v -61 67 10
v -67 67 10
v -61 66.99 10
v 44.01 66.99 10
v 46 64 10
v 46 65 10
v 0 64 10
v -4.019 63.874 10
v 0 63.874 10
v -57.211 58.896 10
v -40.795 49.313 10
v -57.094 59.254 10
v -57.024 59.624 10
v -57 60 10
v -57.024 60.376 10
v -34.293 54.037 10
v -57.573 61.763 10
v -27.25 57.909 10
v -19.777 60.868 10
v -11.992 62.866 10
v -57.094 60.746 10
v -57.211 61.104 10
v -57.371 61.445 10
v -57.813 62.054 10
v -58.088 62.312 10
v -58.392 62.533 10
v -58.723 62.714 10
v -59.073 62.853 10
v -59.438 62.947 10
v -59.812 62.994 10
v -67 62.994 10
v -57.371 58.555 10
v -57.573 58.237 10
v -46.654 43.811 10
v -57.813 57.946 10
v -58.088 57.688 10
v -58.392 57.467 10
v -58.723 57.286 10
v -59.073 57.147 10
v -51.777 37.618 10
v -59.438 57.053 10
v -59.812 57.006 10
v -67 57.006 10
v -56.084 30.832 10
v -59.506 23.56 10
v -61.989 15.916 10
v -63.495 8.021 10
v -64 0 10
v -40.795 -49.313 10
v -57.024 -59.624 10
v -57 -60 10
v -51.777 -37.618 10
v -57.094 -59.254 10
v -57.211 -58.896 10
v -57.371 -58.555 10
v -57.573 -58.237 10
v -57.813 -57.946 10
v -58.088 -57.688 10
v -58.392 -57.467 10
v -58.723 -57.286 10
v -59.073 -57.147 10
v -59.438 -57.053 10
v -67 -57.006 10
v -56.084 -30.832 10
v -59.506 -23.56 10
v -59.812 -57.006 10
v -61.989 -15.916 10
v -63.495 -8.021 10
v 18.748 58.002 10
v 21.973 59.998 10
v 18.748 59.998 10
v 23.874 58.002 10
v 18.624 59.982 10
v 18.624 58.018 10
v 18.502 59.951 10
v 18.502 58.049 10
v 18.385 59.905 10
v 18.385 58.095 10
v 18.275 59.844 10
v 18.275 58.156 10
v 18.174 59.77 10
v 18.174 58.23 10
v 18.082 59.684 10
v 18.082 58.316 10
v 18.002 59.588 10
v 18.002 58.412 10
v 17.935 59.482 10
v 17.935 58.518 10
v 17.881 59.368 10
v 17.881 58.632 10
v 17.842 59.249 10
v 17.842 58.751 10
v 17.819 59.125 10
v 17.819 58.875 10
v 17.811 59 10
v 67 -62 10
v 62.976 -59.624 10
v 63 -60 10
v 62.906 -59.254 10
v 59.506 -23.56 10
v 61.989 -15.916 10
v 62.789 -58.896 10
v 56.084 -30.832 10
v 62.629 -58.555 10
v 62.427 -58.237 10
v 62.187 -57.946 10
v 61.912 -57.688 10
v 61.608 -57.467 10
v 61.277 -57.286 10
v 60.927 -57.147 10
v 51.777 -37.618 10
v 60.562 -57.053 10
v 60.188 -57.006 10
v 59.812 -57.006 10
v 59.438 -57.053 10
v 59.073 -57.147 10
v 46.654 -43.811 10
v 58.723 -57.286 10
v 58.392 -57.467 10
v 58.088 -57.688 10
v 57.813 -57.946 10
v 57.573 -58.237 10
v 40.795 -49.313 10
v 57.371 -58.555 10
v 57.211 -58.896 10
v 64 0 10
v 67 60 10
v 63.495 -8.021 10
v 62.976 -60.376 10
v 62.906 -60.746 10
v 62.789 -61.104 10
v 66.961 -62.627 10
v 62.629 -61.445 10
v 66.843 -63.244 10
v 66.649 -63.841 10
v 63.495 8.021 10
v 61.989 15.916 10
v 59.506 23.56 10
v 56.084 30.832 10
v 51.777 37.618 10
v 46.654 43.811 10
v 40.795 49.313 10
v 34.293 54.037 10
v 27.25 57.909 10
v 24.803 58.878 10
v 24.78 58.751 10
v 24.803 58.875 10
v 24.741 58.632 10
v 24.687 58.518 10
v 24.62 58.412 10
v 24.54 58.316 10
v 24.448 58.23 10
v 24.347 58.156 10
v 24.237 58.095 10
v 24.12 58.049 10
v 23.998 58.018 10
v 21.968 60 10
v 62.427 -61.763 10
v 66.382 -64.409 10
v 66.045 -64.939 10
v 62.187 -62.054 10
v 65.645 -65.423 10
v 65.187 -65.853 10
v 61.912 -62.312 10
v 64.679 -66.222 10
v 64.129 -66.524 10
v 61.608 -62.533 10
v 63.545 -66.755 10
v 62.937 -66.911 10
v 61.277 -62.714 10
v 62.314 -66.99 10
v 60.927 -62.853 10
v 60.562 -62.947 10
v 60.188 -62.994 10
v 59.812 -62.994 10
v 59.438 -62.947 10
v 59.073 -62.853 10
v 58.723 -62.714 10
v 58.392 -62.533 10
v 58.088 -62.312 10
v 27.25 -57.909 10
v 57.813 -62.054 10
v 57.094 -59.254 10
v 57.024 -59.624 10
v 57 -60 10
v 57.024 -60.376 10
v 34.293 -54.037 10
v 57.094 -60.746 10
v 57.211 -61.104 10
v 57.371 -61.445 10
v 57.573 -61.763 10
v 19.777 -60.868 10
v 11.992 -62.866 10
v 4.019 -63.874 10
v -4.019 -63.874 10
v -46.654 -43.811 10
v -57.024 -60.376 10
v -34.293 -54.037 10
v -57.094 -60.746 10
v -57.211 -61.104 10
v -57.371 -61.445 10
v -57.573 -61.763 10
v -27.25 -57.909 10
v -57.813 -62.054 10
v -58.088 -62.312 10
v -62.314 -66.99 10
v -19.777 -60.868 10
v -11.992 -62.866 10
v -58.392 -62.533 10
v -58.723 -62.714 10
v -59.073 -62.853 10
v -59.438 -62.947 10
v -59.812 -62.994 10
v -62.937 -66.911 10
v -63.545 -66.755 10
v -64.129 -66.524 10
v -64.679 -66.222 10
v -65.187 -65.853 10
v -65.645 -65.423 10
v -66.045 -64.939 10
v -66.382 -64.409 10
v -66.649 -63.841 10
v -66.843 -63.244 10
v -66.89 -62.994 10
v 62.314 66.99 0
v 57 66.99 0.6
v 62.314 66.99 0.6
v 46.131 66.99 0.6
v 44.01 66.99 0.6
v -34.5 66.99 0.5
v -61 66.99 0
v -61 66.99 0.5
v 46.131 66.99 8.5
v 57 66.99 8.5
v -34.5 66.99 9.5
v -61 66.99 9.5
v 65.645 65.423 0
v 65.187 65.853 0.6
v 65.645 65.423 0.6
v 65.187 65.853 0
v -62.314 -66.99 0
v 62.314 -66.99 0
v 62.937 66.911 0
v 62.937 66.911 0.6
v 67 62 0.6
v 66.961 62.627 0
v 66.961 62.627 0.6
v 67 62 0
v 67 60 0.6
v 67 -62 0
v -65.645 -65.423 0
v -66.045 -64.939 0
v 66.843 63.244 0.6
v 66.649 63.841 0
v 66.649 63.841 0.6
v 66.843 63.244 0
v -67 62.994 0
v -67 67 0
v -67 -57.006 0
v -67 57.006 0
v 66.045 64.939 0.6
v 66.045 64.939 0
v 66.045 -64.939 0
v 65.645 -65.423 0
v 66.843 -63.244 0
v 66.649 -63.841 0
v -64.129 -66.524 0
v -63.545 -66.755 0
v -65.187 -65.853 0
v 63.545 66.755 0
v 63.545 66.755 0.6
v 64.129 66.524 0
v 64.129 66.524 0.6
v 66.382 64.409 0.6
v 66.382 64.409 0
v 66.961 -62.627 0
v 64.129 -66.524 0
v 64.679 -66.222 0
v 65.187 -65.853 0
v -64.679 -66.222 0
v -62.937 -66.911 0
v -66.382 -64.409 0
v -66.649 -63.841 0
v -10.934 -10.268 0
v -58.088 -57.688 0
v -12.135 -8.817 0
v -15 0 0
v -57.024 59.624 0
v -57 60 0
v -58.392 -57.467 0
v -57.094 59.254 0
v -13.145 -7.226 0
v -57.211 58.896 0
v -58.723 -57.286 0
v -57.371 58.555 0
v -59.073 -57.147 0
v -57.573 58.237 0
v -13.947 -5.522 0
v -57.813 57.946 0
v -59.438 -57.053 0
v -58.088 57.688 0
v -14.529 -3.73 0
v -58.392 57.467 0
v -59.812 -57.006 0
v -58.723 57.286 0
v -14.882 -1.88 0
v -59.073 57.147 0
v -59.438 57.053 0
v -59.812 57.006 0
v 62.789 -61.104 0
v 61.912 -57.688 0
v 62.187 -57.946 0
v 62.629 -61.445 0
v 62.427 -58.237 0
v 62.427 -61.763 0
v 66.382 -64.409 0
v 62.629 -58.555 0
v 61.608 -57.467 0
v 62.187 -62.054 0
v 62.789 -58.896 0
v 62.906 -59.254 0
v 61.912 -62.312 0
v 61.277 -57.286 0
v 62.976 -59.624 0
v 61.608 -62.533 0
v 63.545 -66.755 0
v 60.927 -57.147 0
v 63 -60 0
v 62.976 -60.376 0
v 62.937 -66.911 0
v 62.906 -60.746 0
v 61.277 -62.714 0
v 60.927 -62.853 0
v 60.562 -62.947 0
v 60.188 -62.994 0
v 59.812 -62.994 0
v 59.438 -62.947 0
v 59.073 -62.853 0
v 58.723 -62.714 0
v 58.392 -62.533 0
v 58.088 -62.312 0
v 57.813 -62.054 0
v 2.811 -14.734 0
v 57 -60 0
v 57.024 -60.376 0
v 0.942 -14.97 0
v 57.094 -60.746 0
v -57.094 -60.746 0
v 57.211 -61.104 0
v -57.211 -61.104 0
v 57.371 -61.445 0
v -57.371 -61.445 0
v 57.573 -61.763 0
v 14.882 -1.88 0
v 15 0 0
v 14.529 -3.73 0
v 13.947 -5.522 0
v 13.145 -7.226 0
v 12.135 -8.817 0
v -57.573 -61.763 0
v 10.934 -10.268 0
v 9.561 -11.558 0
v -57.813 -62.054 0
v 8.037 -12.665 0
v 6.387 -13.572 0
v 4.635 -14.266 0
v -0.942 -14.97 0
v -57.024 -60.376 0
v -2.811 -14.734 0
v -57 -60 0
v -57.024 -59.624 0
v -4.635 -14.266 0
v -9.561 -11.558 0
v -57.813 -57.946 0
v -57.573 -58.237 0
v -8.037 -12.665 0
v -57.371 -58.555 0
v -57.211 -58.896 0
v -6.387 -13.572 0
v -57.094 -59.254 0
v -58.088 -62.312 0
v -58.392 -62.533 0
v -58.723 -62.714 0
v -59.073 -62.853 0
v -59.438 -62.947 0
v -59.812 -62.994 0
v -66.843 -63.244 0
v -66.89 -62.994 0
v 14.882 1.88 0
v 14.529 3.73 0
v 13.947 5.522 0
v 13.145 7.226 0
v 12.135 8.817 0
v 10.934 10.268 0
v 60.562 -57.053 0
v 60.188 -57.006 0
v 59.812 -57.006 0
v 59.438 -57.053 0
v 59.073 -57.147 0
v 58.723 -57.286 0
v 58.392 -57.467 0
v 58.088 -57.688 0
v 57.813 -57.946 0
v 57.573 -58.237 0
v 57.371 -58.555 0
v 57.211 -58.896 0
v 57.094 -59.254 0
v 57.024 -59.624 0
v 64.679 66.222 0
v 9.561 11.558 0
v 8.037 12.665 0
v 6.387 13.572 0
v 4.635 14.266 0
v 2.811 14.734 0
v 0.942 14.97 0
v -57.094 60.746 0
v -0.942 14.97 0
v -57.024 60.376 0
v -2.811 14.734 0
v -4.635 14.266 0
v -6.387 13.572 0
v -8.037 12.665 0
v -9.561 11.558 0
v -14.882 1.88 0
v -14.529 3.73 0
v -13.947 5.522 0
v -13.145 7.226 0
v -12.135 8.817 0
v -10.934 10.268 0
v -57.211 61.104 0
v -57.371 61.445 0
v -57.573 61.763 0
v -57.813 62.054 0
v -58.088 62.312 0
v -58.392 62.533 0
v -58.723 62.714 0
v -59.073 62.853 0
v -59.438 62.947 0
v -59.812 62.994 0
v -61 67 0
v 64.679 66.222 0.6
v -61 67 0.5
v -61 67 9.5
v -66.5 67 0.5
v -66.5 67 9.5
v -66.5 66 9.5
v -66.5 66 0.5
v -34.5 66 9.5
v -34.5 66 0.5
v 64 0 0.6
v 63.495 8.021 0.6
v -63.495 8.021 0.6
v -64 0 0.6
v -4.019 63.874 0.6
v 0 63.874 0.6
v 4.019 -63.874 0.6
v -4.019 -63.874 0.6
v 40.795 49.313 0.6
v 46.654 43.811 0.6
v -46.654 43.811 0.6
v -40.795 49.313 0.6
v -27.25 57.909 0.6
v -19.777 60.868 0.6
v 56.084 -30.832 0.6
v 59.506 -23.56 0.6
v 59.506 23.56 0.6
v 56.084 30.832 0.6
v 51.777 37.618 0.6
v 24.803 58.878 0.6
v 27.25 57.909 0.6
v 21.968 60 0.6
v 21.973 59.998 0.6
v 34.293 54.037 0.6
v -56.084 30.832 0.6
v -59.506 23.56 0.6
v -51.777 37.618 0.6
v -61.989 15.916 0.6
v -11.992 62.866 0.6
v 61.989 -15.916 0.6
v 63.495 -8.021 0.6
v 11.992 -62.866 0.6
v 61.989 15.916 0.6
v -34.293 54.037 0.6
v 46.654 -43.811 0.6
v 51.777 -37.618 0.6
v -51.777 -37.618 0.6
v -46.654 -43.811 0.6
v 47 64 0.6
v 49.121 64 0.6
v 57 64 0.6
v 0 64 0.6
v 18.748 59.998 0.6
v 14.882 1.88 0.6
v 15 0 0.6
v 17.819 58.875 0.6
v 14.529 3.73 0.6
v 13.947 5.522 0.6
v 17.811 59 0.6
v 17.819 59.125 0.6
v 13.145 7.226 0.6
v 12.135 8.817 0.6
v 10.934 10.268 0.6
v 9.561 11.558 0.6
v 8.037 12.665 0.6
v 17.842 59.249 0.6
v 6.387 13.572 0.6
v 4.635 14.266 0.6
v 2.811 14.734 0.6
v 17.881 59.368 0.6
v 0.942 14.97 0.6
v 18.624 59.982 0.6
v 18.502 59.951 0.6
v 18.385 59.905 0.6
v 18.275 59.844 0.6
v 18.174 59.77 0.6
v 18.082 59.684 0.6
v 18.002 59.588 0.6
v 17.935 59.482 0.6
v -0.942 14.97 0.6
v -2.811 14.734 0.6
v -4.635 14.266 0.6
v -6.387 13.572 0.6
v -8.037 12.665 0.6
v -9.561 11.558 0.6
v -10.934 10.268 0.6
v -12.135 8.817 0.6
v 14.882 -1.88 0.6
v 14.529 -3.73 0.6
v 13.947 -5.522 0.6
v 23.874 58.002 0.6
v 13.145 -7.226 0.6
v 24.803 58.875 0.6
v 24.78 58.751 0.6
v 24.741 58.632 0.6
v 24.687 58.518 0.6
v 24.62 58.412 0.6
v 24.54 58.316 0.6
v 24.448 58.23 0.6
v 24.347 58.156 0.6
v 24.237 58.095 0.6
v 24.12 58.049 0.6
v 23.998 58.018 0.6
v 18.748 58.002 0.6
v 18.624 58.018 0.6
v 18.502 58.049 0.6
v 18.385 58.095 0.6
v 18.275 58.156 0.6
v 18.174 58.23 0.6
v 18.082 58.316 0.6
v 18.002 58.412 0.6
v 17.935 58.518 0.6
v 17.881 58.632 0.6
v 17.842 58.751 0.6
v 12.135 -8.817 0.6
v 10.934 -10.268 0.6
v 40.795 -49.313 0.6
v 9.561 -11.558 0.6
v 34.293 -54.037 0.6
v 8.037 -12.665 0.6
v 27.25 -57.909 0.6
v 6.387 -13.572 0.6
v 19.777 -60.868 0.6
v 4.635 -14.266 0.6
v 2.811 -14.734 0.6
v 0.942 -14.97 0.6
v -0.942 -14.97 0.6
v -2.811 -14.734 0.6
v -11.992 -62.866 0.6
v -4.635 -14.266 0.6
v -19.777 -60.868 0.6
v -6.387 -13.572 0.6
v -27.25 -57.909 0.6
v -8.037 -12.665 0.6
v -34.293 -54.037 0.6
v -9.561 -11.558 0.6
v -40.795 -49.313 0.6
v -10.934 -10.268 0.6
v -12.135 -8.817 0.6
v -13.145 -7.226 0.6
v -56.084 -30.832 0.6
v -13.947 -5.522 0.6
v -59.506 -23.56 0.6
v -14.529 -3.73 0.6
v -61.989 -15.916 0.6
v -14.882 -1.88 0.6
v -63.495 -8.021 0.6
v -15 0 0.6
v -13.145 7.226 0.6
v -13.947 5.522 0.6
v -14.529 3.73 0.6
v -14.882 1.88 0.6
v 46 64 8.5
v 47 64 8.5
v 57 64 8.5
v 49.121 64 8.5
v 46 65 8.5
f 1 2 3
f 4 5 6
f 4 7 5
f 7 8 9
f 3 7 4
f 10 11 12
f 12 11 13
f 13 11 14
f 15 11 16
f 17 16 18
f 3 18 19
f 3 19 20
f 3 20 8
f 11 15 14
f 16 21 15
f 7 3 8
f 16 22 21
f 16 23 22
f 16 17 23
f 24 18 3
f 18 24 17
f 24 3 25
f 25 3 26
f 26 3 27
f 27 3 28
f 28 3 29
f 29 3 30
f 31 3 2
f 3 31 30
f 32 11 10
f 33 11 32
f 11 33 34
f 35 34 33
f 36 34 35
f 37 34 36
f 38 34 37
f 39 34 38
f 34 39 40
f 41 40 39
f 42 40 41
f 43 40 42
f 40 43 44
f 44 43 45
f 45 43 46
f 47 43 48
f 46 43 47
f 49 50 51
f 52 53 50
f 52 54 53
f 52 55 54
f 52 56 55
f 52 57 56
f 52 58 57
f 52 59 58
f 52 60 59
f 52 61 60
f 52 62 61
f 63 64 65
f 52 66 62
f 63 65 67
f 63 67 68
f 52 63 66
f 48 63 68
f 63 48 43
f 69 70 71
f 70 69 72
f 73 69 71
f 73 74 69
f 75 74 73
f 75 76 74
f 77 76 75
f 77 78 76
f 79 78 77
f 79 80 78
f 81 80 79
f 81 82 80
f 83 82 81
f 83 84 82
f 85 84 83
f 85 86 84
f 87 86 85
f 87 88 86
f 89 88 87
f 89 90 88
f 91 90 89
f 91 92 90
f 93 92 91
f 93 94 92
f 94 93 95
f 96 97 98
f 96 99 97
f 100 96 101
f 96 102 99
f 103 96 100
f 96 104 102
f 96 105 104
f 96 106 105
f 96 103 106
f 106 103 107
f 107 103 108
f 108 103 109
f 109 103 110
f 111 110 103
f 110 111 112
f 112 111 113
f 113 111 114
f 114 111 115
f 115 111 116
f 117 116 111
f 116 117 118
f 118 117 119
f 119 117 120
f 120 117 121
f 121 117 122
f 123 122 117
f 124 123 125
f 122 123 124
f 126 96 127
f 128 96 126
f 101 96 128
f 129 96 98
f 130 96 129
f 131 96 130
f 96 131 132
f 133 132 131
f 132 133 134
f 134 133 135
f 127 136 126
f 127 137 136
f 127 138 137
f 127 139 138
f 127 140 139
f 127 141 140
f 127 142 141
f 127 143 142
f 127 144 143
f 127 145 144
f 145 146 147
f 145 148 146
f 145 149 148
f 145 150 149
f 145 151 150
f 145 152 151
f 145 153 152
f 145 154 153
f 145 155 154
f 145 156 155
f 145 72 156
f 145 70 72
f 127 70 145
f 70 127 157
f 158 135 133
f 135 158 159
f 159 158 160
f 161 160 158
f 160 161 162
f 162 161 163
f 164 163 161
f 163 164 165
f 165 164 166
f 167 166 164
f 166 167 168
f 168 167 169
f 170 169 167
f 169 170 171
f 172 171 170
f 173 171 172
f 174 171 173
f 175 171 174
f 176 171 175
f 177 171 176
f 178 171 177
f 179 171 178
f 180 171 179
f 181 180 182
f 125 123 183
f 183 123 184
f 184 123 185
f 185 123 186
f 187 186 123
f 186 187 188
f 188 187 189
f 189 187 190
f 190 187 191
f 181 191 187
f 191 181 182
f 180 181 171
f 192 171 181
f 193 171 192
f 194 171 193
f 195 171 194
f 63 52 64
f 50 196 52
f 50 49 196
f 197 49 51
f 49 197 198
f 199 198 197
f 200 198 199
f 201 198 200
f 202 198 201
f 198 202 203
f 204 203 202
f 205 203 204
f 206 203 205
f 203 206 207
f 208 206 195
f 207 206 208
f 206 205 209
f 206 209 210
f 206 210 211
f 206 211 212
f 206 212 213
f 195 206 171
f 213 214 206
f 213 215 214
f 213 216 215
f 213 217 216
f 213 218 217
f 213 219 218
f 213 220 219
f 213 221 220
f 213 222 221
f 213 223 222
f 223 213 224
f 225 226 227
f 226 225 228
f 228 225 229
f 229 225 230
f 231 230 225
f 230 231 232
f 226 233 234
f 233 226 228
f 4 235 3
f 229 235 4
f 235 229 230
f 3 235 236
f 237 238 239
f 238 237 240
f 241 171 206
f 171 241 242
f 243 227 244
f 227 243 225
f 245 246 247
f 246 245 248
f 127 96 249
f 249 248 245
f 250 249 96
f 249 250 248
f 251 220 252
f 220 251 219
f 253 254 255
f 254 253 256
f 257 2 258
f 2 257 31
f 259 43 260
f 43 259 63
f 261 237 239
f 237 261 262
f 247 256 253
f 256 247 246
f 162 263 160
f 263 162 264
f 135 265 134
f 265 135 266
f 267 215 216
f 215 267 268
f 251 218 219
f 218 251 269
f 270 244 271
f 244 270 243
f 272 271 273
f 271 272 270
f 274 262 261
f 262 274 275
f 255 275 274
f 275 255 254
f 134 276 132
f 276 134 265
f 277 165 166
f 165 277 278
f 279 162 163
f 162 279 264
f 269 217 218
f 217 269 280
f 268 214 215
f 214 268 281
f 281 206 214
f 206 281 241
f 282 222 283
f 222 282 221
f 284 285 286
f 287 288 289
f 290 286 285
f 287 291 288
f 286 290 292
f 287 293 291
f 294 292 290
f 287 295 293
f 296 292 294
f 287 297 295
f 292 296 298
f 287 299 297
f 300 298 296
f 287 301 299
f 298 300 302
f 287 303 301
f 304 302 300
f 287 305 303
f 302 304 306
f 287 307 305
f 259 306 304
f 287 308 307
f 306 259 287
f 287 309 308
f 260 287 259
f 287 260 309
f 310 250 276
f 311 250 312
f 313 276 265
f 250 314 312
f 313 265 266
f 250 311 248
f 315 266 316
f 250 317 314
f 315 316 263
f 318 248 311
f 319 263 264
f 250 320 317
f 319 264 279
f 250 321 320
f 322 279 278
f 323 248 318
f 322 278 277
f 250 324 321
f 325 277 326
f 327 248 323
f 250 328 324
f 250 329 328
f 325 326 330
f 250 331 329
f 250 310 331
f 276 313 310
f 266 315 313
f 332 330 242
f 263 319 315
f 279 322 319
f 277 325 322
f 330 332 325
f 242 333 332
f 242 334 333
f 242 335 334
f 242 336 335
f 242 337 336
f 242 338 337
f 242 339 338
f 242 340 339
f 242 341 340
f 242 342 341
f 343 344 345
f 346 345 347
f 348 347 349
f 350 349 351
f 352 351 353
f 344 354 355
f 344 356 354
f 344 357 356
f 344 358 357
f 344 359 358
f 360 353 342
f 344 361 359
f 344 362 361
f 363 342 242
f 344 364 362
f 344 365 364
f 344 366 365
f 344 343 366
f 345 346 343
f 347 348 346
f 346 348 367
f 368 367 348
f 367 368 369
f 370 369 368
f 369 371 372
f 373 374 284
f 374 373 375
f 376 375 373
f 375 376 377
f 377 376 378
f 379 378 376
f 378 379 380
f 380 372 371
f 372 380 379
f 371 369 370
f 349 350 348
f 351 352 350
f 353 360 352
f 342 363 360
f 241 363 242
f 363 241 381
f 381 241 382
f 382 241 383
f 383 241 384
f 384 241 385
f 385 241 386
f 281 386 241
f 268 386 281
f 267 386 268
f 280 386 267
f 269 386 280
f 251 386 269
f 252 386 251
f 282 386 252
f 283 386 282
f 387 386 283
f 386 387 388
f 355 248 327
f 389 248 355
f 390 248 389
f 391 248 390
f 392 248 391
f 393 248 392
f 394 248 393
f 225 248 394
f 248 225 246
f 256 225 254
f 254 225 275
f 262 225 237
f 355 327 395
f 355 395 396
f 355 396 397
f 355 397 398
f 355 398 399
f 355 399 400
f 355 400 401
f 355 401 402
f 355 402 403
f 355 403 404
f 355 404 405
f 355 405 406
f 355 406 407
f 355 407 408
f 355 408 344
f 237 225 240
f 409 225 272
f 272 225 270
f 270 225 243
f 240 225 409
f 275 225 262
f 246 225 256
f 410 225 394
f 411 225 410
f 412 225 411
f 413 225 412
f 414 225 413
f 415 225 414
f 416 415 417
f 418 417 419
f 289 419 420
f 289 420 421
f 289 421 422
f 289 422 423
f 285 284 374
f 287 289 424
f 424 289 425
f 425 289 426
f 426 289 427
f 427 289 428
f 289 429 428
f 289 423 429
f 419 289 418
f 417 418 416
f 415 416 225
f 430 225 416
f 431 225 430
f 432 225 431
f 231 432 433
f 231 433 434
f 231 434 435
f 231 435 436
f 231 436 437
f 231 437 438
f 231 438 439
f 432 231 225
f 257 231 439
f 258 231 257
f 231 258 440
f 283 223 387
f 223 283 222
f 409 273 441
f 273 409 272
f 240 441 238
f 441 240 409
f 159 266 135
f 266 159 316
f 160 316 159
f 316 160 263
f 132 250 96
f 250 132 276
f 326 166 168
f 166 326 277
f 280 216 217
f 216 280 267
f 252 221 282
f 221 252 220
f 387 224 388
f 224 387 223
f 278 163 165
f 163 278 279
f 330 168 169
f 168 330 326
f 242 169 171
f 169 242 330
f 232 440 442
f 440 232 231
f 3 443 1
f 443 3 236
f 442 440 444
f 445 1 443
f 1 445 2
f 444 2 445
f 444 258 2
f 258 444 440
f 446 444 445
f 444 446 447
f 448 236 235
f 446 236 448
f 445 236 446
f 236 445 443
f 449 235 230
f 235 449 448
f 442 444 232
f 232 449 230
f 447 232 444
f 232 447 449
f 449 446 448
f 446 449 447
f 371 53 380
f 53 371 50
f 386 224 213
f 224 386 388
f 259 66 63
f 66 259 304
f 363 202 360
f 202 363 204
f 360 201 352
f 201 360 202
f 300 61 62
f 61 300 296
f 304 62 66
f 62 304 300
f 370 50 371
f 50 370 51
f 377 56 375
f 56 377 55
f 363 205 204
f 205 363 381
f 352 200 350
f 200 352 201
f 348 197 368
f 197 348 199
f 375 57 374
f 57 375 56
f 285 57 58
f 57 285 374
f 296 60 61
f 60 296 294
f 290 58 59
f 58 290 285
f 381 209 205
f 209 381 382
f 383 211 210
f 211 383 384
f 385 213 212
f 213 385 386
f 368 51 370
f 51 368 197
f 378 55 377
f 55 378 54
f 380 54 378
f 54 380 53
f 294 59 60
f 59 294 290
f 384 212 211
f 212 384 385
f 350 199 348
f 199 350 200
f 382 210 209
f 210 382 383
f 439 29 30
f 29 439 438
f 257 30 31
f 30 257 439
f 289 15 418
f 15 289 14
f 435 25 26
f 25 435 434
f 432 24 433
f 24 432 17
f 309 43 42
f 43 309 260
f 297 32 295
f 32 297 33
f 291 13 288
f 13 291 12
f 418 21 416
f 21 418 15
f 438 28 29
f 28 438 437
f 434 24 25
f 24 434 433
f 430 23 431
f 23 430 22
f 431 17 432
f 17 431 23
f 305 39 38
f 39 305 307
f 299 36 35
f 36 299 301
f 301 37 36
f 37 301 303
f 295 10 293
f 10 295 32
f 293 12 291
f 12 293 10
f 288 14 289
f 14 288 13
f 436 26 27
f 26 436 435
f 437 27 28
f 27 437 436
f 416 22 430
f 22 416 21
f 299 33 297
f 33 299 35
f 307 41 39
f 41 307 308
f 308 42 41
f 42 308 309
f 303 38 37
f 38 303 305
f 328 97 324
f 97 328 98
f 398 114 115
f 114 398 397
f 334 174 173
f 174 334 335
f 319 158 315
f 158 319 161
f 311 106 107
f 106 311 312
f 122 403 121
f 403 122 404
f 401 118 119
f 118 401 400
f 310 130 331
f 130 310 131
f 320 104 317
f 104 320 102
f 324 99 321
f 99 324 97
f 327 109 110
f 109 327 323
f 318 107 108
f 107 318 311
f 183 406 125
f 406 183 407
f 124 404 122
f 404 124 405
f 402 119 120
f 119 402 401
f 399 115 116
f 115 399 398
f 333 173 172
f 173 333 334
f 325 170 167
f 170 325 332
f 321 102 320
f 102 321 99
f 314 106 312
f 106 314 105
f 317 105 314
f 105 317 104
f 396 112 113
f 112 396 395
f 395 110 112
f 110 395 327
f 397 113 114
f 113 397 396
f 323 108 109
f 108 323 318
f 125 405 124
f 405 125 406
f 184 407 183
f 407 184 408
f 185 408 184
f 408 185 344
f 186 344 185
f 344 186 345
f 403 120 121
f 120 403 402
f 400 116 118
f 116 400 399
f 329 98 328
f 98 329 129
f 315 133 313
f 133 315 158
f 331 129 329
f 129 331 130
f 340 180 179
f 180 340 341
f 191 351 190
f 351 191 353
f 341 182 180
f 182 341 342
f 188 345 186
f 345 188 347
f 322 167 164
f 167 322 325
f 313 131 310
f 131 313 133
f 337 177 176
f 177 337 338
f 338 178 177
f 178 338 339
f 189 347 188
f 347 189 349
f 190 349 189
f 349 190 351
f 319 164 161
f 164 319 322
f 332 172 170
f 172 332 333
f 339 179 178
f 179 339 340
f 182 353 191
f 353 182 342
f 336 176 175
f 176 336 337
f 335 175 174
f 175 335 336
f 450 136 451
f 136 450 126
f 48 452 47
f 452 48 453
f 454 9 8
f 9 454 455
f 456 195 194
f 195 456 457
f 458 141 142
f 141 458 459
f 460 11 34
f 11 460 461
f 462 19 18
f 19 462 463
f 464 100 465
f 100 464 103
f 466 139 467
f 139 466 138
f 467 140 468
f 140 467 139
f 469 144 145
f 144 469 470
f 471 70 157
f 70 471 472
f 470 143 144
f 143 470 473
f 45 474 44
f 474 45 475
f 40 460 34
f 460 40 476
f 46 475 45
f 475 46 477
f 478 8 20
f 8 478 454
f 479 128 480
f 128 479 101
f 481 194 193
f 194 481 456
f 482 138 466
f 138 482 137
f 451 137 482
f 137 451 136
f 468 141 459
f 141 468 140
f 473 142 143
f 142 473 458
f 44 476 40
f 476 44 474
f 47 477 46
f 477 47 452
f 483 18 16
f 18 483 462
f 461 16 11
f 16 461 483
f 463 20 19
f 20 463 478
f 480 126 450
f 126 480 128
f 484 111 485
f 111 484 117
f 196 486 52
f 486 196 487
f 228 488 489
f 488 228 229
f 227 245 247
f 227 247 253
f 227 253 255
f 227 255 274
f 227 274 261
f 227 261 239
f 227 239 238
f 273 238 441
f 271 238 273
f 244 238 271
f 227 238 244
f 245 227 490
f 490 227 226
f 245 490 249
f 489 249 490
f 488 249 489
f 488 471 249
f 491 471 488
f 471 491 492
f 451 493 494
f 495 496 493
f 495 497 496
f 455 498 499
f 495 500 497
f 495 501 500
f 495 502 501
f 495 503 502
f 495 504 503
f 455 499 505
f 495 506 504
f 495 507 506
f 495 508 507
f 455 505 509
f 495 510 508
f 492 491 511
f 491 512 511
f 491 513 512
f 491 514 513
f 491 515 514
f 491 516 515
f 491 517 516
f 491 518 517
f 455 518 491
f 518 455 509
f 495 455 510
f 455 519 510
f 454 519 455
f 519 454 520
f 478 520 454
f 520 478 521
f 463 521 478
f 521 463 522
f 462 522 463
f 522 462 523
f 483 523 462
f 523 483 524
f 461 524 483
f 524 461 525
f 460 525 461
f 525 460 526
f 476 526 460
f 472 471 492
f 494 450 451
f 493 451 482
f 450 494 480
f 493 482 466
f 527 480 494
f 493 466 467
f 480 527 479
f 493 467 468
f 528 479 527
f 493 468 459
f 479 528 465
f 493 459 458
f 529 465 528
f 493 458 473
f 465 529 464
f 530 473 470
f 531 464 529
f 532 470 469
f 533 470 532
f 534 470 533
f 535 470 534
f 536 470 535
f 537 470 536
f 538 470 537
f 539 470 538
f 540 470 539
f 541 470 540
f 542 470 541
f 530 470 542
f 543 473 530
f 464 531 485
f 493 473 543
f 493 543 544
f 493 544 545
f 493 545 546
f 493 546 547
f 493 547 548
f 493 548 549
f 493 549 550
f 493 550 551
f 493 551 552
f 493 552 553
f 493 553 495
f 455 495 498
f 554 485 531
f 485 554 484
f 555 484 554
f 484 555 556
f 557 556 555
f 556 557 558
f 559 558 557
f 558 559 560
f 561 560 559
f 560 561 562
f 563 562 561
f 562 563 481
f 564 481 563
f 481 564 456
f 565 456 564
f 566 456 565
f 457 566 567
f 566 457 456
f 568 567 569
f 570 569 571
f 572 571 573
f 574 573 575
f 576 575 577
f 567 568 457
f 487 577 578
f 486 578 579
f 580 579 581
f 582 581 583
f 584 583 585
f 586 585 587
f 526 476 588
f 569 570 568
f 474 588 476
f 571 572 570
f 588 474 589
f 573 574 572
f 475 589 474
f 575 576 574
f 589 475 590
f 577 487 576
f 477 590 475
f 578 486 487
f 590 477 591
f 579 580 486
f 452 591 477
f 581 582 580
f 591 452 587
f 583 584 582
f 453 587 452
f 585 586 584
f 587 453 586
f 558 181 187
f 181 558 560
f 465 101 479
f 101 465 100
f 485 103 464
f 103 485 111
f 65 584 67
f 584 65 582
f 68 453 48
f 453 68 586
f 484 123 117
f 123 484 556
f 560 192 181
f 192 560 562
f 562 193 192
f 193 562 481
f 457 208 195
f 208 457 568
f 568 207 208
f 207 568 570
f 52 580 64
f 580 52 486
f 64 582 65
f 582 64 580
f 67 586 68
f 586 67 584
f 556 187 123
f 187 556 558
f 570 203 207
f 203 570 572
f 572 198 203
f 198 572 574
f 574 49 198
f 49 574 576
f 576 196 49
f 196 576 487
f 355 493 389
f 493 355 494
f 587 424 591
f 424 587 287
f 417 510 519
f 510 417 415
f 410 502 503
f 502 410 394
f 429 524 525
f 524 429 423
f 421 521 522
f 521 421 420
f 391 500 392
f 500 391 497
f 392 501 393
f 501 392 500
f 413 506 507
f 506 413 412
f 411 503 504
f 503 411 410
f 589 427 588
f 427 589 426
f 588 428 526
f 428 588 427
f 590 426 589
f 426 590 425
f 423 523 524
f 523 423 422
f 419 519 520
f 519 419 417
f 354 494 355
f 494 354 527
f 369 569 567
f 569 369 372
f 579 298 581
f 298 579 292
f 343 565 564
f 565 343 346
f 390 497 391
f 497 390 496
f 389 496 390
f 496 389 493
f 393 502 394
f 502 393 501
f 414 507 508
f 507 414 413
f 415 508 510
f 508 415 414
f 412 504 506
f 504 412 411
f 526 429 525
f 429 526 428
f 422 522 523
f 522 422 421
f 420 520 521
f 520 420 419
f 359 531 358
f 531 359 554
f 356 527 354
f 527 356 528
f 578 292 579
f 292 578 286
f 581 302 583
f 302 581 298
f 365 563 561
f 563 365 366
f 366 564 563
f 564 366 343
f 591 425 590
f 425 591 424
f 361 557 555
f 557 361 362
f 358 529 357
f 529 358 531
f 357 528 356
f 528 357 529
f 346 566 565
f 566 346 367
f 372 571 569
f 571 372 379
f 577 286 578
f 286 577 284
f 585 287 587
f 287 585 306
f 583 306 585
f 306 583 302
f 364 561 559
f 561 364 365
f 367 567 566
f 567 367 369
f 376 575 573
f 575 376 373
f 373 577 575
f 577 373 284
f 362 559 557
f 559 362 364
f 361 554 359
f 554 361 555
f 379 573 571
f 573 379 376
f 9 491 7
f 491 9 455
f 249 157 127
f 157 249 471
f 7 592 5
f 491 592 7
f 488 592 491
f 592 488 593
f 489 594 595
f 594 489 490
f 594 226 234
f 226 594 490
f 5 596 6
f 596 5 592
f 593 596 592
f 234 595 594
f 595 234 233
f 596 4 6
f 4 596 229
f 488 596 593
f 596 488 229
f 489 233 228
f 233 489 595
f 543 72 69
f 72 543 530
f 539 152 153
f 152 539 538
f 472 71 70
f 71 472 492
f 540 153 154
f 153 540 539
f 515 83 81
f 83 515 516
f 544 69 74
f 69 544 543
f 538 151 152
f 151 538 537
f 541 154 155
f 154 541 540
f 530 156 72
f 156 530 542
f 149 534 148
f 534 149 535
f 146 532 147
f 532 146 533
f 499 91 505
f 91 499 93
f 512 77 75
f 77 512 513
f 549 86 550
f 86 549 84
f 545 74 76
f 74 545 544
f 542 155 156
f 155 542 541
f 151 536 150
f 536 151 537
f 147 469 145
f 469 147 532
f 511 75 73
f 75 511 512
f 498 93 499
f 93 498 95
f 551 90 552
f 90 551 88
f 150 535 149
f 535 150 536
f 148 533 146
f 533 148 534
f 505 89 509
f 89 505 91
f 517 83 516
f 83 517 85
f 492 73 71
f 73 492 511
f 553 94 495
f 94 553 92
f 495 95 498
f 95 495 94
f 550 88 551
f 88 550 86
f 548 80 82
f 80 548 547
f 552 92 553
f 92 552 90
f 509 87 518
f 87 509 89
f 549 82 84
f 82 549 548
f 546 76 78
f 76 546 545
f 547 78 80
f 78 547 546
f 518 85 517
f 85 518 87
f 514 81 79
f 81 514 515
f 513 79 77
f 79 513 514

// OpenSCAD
$fn = 50;


union() {
	difference() {
		union() {
			translate(v = [0, 0, 0]) {
				rotate(a = [0, 0, 0]) {
					hull() {
						translate(v = [-62.0000000000, 62.0000000000, 0]) {
							rotate(a = [0, 0, 0]) {
								translate(v = [0, 0, 0]) {
									rotate(a = [0, 0, 0]) {
										cylinder(h = 10, r = 5);
									}
								}
							}
						}
						translate(v = [62.0000000000, 62.0000000000, 0]) {
							rotate(a = [0, 0, 0]) {
								translate(v = [0, 0, 0]) {
									rotate(a = [0, 0, 0]) {
										cylinder(h = 10, r = 5);
									}
								}
							}
						}
						translate(v = [-62.0000000000, -62.0000000000, 0]) {
							rotate(a = [0, 0, 0]) {
								translate(v = [0, 0, 0]) {
									rotate(a = [0, 0, 0]) {
										cylinder(h = 10, r = 5);
									}
								}
							}
						}
						translate(v = [62.0000000000, -62.0000000000, 0]) {
							rotate(a = [0, 0, 0]) {
								translate(v = [0, 0, 0]) {
									rotate(a = [0, 0, 0]) {
										cylinder(h = 10, r = 5);
									}
								}
							}
						}
					}
				}
			}
			translate(v = [-67.0000000000, 61.0000000000, 0]) {
				rotate(a = [0, 0, 0]) {
					cube(size = [6, 6, 10]);
				}
			}
		}
		union() {
			#translate(v = [-66.5000000000, 66.0000000000, 0.5000000000]) {
				rotate(a = [0, 0, 0]) {
					cube(size = [32, 1, 9.0000000000]);
				}
			}
			translate(v = [-67.5000000000, -60.0000000000, -125]) {
				rotate(a = [0, 0, 0]) {
					hull() {
						translate(v = [7.5000000000, 0, 0]) {
							rotate(a = [0, 0, 0]) {
								translate(v = [0, 0, 0]) {
									rotate(a = [0, 0, 0]) {
										cylinder(h = 250, r = 3.0000000000);
									}
								}
							}
						}
						translate(v = [-7.5000000000, 0, 0]) {
							rotate(a = [0, 0, 0]) {
								translate(v = [0, 0, 0]) {
									rotate(a = [0, 0, 0]) {
										cylinder(h = 250, r = 3.0000000000);
									}
								}
							}
						}
					}
				}
			}
			translate(v = [-67.5000000000, 60.0000000000, -125]) {
				rotate(a = [0, 0, 0]) {
					hull() {
						translate(v = [7.5000000000, 0, 0]) {
							rotate(a = [0, 0, 0]) {
								translate(v = [0, 0, 0]) {
									rotate(a = [0, 0, 0]) {
										cylinder(h = 250, r = 3.0000000000);
									}
								}
							}
						}
						translate(v = [-7.5000000000, 0, 0]) {
							rotate(a = [0, 0, 0]) {
								translate(v = [0, 0, 0]) {
									rotate(a = [0, 0, 0]) {
										cylinder(h = 250, r = 3.0000000000);
									}
								}
							}
						}
					}
				}
			}
			translate(v = [60.0000000000, -60.0000000000, -125.0000000000]) {
				rotate(a = [0, 0, 0]) {
					cylinder(h = 250, r = 3.0000000000);
				}
			}
			translate(v = [0, 0, 0.6000000000]) {
				rotate(a = [0, 0, 0]) {
					cylinder(h = 12.4000000000, r = 64.0000000000);
				}
			}
			translate(v = [0, 0, -5.0000000000]) {
				rotate(a = [0, 0, 0]) {
					cylinder(h = 10, r = 15.0000000000);
				}
			}
			translate(v = [0.0000000000, 60.0000000000, 0.6000000000]) {
				rotate(a = [0, 0, 0]) {
					cube(size = [67.0000000000, 4, 12.4000000000]);
				}
			}
			translate(v = [57.0000000000, 60.0000000000, 0.6000000000]) {
				rotate(a = [0, 0, 0]) {
					cube(size = [10, 7, 12.4000000000]);
				}
			}
			translate(v = [46.0000000000, 60.0000000000, 8.5000000000]) {
				rotate(a = [0, 0, 0]) {
					cube(size = [21, 7, 1.5000000000]);
				}
			}
			translate(v = [43.2500000000, 67.7500000000, 0.6000000000]) {
				rotate(a = [0, 0, -45]) {
					cube(size = [7.5000000000, 1.5000000000, 12.4000000000]);
				}
			}
			translate(v = [12.0610000000, 58.0000000000, 0.6000000000]) {
				rotate(a = [0, 0, 0]) {
					cube(size = [7.5000000000, 2, 9.4000000000]);
				}
			}
		}
	}
	union() {
		translate(v = [21.3110000000, 59.0000000000, 0]) {
			rotate(a = [0, 0, 0]) {
				hull() {
					translate(v = [2.5000000000, 0, 0]) {
						rotate(a = [0, 0, 0]) {
							#translate(v = [0, 0, 0]) {
								rotate(a = [0, 0, 0]) {
									cylinder(h = 10, r = 1.0000000000);
								}
							}
						}
					}
					translate(v = [-2.5000000000, 0, 0]) {
						rotate(a = [0, 0, 0]) {
							#translate(v = [0, 0, 0]) {
								rotate(a = [0, 0, 0]) {
									cylinder(h = 10, r = 1.0000000000);
								}
							}
						}
					}
				}
			}
		}
	}
}
